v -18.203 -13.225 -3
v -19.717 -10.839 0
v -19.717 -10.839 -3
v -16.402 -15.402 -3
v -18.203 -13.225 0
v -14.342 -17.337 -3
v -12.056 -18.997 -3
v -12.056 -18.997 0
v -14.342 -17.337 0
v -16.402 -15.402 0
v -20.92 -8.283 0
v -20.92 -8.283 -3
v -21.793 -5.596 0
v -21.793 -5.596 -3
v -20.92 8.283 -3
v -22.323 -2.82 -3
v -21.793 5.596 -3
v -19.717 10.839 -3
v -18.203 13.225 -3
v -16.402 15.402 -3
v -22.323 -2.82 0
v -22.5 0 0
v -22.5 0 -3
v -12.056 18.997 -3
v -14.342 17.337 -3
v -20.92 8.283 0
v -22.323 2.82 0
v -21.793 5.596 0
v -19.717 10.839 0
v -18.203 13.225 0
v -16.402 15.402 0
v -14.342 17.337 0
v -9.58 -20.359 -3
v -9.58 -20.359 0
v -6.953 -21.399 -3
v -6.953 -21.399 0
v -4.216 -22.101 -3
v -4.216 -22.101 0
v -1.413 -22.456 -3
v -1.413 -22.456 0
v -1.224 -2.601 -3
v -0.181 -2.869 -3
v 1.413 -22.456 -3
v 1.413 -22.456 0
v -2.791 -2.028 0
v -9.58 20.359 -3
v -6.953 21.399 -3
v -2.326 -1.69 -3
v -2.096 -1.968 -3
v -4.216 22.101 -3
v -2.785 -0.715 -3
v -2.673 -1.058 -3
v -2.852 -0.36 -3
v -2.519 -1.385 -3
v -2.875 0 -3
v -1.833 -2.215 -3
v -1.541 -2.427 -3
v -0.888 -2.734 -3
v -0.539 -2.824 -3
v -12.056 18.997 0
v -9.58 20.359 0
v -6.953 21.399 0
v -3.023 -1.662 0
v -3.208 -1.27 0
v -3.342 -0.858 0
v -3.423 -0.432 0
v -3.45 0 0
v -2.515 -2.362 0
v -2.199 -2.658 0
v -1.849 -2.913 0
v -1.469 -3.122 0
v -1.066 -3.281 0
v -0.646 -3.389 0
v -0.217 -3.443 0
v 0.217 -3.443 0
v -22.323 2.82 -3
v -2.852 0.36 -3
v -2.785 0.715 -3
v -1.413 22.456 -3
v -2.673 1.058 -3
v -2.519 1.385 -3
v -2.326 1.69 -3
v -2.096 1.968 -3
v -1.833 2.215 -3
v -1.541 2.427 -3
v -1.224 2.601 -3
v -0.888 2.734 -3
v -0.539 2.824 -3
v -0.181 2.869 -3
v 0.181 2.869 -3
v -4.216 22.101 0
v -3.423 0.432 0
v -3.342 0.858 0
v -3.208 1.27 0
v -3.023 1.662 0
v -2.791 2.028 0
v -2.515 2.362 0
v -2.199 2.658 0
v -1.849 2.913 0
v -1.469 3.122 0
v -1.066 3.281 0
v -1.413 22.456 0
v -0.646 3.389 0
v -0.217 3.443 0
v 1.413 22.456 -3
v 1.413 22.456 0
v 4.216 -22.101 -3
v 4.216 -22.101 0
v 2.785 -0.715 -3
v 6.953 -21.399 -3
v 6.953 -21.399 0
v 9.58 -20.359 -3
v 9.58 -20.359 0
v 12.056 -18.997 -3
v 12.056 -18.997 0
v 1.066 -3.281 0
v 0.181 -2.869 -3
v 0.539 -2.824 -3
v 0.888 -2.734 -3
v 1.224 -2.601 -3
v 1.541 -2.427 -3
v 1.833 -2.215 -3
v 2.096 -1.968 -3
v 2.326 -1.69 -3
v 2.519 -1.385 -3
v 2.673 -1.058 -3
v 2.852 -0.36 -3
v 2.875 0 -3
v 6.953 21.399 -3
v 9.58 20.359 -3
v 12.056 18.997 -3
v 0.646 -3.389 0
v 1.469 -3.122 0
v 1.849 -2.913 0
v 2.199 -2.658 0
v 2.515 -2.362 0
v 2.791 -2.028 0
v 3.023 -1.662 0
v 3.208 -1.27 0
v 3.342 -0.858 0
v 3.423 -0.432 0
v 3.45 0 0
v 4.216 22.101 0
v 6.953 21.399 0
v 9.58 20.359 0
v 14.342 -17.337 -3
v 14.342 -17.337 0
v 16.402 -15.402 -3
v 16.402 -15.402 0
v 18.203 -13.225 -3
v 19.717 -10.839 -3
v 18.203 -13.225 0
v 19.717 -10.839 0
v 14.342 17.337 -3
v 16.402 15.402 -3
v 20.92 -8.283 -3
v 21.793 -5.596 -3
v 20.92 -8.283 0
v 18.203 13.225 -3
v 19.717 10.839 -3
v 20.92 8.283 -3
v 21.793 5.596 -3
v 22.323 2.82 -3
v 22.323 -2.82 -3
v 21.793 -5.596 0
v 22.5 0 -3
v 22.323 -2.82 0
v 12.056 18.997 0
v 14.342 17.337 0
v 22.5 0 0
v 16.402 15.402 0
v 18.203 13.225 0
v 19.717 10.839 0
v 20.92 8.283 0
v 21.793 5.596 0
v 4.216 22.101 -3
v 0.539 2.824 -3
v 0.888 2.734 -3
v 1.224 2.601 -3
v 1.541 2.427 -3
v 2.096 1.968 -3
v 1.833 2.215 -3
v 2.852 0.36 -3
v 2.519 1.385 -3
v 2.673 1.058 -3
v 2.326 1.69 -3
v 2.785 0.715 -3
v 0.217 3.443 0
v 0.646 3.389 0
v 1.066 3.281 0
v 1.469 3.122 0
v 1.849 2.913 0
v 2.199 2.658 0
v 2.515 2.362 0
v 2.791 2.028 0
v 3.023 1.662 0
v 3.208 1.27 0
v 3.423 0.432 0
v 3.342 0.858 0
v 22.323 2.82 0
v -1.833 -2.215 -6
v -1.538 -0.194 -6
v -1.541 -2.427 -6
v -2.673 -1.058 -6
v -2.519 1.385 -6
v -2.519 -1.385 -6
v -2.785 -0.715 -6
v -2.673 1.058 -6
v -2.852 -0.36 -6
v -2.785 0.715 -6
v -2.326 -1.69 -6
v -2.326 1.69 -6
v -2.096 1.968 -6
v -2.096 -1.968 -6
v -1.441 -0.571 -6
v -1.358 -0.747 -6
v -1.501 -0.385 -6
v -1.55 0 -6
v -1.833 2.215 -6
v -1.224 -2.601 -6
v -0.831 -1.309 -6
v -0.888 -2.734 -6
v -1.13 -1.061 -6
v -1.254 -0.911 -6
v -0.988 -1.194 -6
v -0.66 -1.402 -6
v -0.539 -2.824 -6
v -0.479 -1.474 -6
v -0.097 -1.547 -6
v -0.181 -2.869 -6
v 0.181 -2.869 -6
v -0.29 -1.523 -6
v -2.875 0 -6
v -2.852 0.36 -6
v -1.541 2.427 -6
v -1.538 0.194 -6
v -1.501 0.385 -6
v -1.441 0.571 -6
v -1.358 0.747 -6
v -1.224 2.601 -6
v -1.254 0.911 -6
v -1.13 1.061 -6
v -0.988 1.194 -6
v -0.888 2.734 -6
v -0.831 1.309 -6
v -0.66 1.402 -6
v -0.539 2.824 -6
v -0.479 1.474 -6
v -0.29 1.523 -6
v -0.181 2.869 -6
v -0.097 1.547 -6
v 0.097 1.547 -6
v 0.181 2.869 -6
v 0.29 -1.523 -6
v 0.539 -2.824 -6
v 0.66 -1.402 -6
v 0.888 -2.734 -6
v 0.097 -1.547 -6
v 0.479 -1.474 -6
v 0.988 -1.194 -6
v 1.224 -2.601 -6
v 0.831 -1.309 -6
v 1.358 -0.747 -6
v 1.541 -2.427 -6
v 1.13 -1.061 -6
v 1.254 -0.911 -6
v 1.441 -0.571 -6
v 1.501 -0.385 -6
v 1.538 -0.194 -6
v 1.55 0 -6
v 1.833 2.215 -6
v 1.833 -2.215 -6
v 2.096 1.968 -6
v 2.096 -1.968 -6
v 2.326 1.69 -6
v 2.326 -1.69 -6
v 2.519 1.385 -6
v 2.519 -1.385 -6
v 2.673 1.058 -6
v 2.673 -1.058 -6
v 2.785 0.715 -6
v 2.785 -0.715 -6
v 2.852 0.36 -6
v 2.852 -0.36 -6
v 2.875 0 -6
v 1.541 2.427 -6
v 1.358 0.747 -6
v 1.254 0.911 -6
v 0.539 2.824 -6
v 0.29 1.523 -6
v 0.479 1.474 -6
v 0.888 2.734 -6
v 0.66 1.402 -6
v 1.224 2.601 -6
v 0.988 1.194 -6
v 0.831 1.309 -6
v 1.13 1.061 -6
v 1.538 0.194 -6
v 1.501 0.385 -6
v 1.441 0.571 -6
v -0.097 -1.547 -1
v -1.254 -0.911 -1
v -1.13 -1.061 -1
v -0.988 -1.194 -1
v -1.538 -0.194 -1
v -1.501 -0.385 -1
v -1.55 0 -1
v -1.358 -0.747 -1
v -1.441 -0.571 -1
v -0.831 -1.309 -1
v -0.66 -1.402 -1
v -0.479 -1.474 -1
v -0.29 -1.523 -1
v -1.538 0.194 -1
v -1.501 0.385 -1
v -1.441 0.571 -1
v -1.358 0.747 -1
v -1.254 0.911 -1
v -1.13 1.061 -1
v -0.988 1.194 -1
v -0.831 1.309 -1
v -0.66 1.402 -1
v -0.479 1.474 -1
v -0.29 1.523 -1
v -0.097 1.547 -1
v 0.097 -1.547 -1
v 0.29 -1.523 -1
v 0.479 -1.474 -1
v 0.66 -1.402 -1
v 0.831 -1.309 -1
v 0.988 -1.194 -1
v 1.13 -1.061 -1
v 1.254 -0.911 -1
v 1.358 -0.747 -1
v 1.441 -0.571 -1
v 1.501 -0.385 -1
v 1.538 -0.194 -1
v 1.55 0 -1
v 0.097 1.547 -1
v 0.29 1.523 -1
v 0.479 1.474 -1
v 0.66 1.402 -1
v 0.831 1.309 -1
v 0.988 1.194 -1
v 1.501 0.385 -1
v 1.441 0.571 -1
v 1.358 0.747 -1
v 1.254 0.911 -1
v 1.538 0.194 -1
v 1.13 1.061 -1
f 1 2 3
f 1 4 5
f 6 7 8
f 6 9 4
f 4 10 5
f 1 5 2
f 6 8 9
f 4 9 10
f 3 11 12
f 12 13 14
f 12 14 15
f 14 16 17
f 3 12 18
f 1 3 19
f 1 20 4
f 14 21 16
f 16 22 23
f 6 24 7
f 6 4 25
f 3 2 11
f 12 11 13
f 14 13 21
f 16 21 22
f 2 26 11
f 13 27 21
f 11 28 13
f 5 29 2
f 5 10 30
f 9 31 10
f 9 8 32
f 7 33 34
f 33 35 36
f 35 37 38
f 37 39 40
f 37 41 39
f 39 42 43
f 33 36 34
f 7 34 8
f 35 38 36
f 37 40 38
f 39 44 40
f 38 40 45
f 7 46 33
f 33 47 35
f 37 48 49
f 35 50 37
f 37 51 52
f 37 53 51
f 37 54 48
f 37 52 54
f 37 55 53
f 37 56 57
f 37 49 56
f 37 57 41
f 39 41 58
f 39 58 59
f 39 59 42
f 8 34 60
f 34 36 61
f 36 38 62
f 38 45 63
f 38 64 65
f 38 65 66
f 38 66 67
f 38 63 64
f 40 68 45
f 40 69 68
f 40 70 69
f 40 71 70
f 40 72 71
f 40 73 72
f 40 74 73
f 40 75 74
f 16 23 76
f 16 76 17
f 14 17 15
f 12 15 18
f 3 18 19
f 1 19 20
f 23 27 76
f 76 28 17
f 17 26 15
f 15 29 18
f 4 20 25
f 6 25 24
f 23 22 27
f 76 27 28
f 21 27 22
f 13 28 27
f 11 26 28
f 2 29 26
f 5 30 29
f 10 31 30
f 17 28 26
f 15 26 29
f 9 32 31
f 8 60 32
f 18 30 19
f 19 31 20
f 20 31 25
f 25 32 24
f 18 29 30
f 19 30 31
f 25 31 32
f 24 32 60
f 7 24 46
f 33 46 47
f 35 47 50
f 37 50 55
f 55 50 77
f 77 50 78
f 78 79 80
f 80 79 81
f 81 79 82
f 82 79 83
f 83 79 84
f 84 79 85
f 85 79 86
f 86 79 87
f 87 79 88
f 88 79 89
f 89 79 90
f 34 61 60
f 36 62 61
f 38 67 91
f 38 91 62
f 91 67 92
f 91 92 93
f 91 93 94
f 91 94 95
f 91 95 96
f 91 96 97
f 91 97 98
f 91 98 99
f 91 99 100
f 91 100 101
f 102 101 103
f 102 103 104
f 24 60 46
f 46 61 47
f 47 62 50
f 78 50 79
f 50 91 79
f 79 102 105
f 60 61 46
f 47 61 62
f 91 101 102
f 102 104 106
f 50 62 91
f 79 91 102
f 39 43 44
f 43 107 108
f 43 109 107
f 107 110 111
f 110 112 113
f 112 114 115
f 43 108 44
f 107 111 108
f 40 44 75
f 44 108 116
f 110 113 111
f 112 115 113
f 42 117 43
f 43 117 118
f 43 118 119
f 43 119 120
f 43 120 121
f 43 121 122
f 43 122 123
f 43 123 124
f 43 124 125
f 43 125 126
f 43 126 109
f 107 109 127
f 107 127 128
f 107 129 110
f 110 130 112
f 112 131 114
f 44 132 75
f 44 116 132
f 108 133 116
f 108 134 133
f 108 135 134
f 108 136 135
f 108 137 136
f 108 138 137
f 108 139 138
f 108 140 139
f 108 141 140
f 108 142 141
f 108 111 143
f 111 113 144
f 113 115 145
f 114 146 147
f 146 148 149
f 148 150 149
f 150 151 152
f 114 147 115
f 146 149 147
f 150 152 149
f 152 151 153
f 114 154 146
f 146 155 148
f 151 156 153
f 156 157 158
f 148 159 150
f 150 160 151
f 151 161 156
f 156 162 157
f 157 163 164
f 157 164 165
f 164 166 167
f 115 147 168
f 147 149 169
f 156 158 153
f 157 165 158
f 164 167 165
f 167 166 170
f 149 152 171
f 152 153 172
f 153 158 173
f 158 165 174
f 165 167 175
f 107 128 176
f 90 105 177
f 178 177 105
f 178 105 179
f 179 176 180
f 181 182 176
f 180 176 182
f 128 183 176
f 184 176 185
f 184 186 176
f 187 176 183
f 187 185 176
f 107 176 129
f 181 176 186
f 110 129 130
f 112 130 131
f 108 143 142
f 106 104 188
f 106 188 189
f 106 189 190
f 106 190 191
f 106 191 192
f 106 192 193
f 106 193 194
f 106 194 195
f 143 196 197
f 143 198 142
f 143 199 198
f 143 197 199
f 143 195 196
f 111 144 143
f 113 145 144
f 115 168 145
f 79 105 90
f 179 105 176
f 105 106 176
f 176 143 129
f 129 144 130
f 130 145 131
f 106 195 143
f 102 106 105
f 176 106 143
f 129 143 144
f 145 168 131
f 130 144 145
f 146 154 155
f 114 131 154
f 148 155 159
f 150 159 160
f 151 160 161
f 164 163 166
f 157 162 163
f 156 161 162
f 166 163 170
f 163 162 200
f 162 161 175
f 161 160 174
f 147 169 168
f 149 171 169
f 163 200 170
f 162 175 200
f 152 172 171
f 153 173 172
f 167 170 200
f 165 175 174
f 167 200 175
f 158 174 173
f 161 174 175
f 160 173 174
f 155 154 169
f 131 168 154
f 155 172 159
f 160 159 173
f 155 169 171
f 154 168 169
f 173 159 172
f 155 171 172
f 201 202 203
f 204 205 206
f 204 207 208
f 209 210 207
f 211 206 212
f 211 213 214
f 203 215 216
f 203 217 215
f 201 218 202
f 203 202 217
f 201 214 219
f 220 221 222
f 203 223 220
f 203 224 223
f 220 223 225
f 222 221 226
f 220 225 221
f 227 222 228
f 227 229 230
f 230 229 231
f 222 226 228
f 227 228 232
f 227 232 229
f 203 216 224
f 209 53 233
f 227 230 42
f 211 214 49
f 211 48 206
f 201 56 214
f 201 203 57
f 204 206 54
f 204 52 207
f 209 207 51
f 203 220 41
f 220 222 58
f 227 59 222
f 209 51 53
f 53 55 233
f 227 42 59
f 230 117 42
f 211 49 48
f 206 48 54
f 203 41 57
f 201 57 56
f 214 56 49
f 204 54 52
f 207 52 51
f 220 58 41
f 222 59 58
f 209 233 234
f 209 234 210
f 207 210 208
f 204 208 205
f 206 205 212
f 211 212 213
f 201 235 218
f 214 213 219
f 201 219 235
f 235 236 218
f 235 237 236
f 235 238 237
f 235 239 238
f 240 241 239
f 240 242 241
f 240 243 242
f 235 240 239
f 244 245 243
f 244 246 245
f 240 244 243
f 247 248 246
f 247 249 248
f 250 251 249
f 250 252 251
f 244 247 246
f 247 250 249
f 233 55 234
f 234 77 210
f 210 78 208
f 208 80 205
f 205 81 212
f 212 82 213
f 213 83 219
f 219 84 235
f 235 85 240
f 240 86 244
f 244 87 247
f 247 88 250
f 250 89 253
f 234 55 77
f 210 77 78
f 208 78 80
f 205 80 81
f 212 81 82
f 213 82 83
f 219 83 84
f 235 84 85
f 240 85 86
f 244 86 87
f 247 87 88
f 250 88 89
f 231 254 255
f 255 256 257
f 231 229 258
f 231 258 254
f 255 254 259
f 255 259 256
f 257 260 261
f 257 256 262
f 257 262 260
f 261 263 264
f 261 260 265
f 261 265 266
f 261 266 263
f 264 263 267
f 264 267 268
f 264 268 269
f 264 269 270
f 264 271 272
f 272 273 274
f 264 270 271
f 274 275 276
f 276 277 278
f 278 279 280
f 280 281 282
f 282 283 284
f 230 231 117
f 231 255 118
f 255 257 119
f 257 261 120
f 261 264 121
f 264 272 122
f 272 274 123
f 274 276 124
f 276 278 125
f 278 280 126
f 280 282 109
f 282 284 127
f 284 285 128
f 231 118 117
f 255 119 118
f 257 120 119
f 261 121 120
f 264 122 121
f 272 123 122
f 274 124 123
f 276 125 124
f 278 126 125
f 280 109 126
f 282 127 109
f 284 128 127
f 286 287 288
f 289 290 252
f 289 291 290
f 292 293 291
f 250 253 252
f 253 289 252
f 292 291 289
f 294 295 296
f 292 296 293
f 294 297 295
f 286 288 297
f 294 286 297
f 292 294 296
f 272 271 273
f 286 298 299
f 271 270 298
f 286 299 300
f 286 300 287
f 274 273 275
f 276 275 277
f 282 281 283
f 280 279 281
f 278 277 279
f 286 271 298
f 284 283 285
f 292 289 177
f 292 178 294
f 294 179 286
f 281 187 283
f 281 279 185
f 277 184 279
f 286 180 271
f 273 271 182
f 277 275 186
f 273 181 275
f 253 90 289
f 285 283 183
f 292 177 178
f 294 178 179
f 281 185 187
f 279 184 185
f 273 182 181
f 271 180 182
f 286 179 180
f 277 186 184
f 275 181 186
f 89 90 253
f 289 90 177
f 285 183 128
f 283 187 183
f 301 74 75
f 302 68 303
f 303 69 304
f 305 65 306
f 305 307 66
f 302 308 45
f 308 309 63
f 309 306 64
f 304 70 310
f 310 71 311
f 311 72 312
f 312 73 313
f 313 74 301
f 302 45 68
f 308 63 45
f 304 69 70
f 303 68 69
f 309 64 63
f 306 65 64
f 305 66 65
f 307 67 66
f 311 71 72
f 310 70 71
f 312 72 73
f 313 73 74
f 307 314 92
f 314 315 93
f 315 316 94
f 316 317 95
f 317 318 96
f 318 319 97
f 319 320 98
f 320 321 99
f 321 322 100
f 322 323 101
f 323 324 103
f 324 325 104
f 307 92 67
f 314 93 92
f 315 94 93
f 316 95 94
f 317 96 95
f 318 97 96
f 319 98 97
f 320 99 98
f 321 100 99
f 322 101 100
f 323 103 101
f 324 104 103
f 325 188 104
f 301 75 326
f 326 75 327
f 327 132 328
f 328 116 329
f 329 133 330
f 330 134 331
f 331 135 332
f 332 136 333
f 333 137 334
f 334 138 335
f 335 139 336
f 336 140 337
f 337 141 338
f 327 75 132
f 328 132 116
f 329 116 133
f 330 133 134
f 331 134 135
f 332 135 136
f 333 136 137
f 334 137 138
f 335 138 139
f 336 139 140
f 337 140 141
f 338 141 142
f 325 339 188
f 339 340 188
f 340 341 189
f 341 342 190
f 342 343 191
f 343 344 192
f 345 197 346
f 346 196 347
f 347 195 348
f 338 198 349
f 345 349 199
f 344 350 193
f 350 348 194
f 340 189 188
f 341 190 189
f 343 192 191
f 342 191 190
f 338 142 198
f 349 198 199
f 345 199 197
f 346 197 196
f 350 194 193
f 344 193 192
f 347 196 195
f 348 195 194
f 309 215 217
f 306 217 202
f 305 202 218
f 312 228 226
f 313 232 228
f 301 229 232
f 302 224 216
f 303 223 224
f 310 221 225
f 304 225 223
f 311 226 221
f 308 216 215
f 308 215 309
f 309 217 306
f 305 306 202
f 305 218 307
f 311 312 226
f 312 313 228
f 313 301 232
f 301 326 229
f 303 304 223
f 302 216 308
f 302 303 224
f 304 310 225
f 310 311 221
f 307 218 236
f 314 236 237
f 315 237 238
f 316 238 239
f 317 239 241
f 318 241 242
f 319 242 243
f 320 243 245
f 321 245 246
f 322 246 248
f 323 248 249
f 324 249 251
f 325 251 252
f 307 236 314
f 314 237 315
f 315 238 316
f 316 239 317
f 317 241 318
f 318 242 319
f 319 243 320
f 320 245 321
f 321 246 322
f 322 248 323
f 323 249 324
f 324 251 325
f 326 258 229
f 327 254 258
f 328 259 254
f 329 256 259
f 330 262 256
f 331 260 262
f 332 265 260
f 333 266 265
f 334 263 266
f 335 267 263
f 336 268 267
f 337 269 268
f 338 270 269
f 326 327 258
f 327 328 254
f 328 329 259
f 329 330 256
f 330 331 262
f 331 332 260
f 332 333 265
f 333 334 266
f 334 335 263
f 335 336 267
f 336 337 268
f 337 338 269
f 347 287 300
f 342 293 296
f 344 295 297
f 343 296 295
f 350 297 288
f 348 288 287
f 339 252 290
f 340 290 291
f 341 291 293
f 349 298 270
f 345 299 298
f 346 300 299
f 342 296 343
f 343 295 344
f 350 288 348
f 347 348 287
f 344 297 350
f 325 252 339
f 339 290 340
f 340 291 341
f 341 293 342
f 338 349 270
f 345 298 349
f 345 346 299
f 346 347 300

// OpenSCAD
$fn = 50;

difference() {
	union() {
		translate(v = [0, 0, -3.0]) {
			cylinder(h = 3, r = 22.5);
		}
		#translate(v = [0, 0, -6.0]) {
			cylinder(h = 6, r = 2.875);
		}
	}
	union() {
		translate(v = [0, 0, 0]) {
			rotate(a = [0, 0, 0]) {
				difference() {
					union() {
						translate(v = [0, 0, -6.0]) {
							cylinder(h = 6, r = 1.25);
						}
						translate(v = [0, 0, -1.0]) {
							cylinder(h = 1.0, r1 = 1.55, r2 = 3.45);
						}
						translate(v = [0, 0, -6.0]) {
							cylinder(h = 6, r = 1.55);
						}
						translate(v = [0, 0, -6.0]) {
							cylinder(h = 6, r = 1.25);
						}
					}
					union();
				}
			}
		}
	}
}
